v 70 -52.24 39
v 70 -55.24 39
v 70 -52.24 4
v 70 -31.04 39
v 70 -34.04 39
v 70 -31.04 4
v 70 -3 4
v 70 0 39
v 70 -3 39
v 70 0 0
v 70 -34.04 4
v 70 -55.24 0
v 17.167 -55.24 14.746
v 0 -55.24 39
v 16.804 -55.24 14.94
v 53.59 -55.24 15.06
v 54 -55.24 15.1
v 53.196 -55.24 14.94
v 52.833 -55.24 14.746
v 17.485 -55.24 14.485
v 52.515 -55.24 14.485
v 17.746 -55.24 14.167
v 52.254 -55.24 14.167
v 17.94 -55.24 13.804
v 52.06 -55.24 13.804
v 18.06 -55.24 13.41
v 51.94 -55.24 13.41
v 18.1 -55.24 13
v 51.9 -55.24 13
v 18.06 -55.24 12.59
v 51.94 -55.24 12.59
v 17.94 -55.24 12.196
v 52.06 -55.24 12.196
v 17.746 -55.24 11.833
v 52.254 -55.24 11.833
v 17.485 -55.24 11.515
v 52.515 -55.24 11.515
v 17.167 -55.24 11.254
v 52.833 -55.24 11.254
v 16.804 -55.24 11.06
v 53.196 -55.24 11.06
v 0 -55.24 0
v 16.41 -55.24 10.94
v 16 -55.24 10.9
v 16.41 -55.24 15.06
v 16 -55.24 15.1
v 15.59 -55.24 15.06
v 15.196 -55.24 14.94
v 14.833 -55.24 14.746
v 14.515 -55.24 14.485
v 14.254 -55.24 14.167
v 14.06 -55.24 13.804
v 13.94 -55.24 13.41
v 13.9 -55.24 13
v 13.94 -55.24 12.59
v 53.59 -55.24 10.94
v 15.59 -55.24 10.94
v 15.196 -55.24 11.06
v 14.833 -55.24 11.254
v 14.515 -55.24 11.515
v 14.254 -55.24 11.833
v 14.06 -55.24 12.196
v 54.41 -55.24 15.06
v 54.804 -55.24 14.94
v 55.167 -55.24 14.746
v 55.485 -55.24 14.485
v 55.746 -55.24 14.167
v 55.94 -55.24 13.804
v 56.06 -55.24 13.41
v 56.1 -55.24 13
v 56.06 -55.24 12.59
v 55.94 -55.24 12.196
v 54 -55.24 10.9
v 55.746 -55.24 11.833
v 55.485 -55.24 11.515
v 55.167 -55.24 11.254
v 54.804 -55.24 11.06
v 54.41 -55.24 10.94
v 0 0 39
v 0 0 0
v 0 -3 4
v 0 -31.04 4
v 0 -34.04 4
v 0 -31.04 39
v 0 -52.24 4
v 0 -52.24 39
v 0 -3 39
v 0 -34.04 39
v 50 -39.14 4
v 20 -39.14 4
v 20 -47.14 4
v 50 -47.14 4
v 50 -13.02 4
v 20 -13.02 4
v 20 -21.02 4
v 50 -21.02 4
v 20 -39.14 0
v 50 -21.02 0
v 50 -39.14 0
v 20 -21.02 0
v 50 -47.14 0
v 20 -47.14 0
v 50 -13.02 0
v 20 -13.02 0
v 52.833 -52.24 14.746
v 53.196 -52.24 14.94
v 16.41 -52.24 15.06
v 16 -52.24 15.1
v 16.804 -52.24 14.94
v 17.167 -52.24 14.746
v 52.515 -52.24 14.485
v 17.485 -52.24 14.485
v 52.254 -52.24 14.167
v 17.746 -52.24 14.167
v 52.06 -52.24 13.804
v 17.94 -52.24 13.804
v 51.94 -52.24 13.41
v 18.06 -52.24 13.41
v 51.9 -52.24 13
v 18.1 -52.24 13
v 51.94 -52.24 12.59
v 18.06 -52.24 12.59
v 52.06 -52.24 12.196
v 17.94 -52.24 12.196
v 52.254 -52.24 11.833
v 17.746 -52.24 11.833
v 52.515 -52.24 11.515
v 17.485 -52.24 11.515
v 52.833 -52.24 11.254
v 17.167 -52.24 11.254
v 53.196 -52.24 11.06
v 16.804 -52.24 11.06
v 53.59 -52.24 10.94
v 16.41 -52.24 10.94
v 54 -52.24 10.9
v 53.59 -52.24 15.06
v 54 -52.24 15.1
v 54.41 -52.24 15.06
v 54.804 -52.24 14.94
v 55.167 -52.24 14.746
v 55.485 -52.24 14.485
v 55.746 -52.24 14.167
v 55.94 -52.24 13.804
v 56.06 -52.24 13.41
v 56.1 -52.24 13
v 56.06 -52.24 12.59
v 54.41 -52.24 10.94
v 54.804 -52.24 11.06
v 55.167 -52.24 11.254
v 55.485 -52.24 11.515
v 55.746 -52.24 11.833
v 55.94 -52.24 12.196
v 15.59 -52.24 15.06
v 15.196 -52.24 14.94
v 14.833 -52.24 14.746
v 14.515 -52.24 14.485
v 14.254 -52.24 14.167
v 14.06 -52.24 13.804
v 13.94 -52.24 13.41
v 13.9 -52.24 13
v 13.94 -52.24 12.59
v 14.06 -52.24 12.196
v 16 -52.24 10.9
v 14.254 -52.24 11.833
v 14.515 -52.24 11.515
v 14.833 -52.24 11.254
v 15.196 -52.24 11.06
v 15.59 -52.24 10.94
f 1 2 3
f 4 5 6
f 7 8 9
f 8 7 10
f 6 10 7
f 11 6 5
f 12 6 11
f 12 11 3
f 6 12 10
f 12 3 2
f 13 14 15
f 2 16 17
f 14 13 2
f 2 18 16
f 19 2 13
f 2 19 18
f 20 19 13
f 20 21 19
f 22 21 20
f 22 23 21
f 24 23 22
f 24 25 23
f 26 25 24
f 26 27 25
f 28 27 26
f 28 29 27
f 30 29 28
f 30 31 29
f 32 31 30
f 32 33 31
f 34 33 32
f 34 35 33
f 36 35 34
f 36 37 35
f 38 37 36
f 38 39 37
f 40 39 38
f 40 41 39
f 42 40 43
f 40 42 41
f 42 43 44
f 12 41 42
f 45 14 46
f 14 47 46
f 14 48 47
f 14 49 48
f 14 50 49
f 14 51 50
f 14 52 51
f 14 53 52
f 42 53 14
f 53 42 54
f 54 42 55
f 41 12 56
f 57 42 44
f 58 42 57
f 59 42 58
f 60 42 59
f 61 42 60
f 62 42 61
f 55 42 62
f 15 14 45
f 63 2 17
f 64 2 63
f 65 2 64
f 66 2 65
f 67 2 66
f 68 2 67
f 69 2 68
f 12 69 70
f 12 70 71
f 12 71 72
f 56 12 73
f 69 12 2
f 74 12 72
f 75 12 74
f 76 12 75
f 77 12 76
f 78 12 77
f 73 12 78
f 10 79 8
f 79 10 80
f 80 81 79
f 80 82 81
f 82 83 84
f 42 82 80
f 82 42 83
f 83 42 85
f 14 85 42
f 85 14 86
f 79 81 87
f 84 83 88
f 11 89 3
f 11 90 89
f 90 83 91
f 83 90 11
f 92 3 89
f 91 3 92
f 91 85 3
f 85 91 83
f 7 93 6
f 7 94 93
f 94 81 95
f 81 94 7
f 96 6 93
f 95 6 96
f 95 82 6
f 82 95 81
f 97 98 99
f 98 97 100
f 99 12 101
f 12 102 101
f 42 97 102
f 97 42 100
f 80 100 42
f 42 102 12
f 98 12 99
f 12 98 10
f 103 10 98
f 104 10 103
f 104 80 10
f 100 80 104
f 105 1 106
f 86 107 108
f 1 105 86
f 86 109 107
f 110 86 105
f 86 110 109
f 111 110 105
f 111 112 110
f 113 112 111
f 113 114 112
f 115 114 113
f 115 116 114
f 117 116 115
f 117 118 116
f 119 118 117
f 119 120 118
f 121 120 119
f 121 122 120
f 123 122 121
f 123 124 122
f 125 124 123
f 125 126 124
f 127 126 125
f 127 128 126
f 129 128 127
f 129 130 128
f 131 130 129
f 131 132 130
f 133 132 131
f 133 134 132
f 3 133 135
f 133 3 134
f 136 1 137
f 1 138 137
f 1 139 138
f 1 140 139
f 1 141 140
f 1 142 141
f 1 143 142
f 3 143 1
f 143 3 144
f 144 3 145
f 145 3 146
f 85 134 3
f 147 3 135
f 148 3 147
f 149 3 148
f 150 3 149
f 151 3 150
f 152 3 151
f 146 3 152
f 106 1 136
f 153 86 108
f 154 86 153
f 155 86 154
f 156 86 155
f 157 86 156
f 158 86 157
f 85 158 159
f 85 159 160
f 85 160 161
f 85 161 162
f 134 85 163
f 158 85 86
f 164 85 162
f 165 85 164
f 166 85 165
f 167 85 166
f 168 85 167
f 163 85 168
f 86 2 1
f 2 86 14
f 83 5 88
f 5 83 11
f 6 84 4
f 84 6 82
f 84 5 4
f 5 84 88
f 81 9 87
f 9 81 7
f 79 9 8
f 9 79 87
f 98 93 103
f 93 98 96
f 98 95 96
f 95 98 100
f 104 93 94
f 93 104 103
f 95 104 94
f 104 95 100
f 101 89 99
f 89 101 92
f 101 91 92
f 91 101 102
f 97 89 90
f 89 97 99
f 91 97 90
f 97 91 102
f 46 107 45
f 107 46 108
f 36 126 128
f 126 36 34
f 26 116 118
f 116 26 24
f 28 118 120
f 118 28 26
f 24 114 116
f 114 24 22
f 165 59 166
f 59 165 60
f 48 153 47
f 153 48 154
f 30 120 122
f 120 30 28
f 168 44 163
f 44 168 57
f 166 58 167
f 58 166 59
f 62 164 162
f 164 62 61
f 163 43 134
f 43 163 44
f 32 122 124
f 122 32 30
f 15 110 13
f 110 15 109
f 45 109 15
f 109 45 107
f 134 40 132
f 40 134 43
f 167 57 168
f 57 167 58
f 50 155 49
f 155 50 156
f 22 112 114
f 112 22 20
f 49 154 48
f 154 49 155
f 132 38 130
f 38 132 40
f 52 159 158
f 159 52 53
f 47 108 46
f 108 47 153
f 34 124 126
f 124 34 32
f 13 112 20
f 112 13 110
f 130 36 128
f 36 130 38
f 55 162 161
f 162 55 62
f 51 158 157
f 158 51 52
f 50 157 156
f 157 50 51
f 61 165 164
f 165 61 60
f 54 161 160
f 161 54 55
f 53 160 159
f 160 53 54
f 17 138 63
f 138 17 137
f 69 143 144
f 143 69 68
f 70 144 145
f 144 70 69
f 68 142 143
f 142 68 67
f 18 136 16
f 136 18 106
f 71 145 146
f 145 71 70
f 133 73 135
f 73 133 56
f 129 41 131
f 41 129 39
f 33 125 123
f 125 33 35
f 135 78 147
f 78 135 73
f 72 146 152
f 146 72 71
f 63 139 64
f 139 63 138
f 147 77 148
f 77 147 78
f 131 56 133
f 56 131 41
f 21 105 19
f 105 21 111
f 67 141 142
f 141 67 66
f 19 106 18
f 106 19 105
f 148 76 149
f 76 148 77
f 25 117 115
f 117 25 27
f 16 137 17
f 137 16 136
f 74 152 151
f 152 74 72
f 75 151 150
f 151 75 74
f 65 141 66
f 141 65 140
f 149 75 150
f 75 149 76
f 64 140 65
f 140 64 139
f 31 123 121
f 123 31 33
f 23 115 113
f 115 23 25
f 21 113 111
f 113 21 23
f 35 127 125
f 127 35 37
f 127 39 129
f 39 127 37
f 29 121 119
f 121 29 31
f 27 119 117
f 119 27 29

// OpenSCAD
// file: ../../lib/under_desk_shelf.scad
/* Reusable under-desk double shelf bracket.

   Screws to the underside of a desk and holds TWO laptops flat, one above the
   other. Print two or three and space them along the laptops' edge; the
   spacing is set when you drill, not by the print.

   Section is a comb: a vertical spine with three tabs, all pointing the same
   way. The top tab takes the screw, the middle and bottom tabs are the two
   shelves. Laptops slide in from the open side and rest on the tabs.

   The top tab points INWARD, over the laptop, rather than outward as most
   commercial versions do. That is deliberate: with every tab on the same side,
   the part lies on its spine and prints with all tabs rising vertically, so
   there is not a single overhang anywhere. An outward flange would need a
   chamfer under it. The cost is that the upper laptop sits lip_t lower, which
   is accounted for.

   Fit the brackets first, then slide the laptops in - the screws are above the
   upper laptop and unreachable once it is loaded.

   lip_reach is sized for the NARROWER laptop, not the wider one. Brackets get
   spaced for the widest machine, so a narrower one loses half the width
   difference in overlap on each side. With a 16" and a 14" that is 19.9 mm per
   side, and a short lip would let the 14" drop between the brackets.

   Usage:
       use <../../lib/under_desk_shelf.scad>
       under_desk_shelf(upper_t = 16.8, lower_t = 26.64);
*/

module under_desk_shelf(
    upper_t,
    lower_t,

    fit_clear = 1.4,

    bracket_w = 70.0,
    lip_reach = 35.0,
    spine_t   = 4.0,
    lip_t     = 3.0,

    screw_d   = 4.2,
    screw_ins = 9.0,

    win_w = 30.0,
    win_h = 8.0
) {
    upper_gap = upper_t + fit_clear;
    lower_gap = lower_t + fit_clear;
    total_h   = 3 * lip_t + upper_gap + lower_gap;

    eps = 0.01;

    /* z measured from the bottom of the part. The desk face is at total_h. */
    z_top_tab = total_h - lip_t;
    z_mid_tab = z_top_tab - upper_gap - lip_t;
    z_bot_tab = 0;

    module spine() {
        cube([bracket_w, spine_t, total_h]);
    }

    module tab(z) {
        translate([0, spine_t - eps, z])
            cube([bracket_w, lip_reach + eps, lip_t]);
    }

    /* Lightening cutouts in the spine. Kept clear of the tab roots so every
       tab still meets full-thickness spine. */
    module spine_windows() {
        for (z = [z_bot_tab + lip_t + lower_gap / 2,
                  z_mid_tab + lip_t + upper_gap / 2])
            translate([bracket_w / 2, spine_t / 2, z])
                cube([win_w, spine_t + 2, win_h], center = true);
    }

    module screws() {
        for (sx = [-1, 1])
            translate([bracket_w / 2 + sx * (bracket_w / 2 - 16),
                       spine_t + screw_ins, total_h - lip_t / 2])
                cylinder(d = screw_d, h = lip_t + 2, center = true, $fn = 32);
    }

    difference() {
        union() {
            spine();
            tab(z_top_tab);
            tab(z_mid_tab);
            tab(z_bot_tab);
        }
        spine_windows();
        screws();
    }
}
// main file
/* Under-desk double shelf for a MacBook Pro 16" and a ThinkPad P14s 14".
   Print two, identical. Three if you want mid-span support.

       upper shelf   MacBook Pro 16"   16.8 mm thick, 355.7 wide
       lower shelf   ThinkPad P14s     26.64 mm over its rear bar, 315.9 wide

   MacBook on top simply because it is the thinner of the two, so the stack
   sits tighter to the desk. Swap upper_t and lower_t to reverse it.

   The ThinkPad number is the MEASURED 26.64, not Lenovo's published 16.13.
   The machine has a raised bar across its underside; laid flat that bar sets
   the shelf gap.

   SPACING: set the brackets to the MacBook's 355.7 mm plus a couple of mm and
   slide each laptop in from the front. lip_reach is 35 mm so the narrower
   ThinkPad still lands ~14 mm onto each lip.

   EXPORTED ALREADY ROTATED into its print orientation, lying on its spine with
   every tab rising vertically. Verified zero downward-facing facets. Do not
   re-orient it; standing upright the three tabs become horizontal cantilevers.
*/

use <../../lib/under_desk_shelf.scad>

$fn = 48;

rotate([90, 0, 0])
under_desk_shelf(
    upper_t = 16.80,
    lower_t = 26.64
);
